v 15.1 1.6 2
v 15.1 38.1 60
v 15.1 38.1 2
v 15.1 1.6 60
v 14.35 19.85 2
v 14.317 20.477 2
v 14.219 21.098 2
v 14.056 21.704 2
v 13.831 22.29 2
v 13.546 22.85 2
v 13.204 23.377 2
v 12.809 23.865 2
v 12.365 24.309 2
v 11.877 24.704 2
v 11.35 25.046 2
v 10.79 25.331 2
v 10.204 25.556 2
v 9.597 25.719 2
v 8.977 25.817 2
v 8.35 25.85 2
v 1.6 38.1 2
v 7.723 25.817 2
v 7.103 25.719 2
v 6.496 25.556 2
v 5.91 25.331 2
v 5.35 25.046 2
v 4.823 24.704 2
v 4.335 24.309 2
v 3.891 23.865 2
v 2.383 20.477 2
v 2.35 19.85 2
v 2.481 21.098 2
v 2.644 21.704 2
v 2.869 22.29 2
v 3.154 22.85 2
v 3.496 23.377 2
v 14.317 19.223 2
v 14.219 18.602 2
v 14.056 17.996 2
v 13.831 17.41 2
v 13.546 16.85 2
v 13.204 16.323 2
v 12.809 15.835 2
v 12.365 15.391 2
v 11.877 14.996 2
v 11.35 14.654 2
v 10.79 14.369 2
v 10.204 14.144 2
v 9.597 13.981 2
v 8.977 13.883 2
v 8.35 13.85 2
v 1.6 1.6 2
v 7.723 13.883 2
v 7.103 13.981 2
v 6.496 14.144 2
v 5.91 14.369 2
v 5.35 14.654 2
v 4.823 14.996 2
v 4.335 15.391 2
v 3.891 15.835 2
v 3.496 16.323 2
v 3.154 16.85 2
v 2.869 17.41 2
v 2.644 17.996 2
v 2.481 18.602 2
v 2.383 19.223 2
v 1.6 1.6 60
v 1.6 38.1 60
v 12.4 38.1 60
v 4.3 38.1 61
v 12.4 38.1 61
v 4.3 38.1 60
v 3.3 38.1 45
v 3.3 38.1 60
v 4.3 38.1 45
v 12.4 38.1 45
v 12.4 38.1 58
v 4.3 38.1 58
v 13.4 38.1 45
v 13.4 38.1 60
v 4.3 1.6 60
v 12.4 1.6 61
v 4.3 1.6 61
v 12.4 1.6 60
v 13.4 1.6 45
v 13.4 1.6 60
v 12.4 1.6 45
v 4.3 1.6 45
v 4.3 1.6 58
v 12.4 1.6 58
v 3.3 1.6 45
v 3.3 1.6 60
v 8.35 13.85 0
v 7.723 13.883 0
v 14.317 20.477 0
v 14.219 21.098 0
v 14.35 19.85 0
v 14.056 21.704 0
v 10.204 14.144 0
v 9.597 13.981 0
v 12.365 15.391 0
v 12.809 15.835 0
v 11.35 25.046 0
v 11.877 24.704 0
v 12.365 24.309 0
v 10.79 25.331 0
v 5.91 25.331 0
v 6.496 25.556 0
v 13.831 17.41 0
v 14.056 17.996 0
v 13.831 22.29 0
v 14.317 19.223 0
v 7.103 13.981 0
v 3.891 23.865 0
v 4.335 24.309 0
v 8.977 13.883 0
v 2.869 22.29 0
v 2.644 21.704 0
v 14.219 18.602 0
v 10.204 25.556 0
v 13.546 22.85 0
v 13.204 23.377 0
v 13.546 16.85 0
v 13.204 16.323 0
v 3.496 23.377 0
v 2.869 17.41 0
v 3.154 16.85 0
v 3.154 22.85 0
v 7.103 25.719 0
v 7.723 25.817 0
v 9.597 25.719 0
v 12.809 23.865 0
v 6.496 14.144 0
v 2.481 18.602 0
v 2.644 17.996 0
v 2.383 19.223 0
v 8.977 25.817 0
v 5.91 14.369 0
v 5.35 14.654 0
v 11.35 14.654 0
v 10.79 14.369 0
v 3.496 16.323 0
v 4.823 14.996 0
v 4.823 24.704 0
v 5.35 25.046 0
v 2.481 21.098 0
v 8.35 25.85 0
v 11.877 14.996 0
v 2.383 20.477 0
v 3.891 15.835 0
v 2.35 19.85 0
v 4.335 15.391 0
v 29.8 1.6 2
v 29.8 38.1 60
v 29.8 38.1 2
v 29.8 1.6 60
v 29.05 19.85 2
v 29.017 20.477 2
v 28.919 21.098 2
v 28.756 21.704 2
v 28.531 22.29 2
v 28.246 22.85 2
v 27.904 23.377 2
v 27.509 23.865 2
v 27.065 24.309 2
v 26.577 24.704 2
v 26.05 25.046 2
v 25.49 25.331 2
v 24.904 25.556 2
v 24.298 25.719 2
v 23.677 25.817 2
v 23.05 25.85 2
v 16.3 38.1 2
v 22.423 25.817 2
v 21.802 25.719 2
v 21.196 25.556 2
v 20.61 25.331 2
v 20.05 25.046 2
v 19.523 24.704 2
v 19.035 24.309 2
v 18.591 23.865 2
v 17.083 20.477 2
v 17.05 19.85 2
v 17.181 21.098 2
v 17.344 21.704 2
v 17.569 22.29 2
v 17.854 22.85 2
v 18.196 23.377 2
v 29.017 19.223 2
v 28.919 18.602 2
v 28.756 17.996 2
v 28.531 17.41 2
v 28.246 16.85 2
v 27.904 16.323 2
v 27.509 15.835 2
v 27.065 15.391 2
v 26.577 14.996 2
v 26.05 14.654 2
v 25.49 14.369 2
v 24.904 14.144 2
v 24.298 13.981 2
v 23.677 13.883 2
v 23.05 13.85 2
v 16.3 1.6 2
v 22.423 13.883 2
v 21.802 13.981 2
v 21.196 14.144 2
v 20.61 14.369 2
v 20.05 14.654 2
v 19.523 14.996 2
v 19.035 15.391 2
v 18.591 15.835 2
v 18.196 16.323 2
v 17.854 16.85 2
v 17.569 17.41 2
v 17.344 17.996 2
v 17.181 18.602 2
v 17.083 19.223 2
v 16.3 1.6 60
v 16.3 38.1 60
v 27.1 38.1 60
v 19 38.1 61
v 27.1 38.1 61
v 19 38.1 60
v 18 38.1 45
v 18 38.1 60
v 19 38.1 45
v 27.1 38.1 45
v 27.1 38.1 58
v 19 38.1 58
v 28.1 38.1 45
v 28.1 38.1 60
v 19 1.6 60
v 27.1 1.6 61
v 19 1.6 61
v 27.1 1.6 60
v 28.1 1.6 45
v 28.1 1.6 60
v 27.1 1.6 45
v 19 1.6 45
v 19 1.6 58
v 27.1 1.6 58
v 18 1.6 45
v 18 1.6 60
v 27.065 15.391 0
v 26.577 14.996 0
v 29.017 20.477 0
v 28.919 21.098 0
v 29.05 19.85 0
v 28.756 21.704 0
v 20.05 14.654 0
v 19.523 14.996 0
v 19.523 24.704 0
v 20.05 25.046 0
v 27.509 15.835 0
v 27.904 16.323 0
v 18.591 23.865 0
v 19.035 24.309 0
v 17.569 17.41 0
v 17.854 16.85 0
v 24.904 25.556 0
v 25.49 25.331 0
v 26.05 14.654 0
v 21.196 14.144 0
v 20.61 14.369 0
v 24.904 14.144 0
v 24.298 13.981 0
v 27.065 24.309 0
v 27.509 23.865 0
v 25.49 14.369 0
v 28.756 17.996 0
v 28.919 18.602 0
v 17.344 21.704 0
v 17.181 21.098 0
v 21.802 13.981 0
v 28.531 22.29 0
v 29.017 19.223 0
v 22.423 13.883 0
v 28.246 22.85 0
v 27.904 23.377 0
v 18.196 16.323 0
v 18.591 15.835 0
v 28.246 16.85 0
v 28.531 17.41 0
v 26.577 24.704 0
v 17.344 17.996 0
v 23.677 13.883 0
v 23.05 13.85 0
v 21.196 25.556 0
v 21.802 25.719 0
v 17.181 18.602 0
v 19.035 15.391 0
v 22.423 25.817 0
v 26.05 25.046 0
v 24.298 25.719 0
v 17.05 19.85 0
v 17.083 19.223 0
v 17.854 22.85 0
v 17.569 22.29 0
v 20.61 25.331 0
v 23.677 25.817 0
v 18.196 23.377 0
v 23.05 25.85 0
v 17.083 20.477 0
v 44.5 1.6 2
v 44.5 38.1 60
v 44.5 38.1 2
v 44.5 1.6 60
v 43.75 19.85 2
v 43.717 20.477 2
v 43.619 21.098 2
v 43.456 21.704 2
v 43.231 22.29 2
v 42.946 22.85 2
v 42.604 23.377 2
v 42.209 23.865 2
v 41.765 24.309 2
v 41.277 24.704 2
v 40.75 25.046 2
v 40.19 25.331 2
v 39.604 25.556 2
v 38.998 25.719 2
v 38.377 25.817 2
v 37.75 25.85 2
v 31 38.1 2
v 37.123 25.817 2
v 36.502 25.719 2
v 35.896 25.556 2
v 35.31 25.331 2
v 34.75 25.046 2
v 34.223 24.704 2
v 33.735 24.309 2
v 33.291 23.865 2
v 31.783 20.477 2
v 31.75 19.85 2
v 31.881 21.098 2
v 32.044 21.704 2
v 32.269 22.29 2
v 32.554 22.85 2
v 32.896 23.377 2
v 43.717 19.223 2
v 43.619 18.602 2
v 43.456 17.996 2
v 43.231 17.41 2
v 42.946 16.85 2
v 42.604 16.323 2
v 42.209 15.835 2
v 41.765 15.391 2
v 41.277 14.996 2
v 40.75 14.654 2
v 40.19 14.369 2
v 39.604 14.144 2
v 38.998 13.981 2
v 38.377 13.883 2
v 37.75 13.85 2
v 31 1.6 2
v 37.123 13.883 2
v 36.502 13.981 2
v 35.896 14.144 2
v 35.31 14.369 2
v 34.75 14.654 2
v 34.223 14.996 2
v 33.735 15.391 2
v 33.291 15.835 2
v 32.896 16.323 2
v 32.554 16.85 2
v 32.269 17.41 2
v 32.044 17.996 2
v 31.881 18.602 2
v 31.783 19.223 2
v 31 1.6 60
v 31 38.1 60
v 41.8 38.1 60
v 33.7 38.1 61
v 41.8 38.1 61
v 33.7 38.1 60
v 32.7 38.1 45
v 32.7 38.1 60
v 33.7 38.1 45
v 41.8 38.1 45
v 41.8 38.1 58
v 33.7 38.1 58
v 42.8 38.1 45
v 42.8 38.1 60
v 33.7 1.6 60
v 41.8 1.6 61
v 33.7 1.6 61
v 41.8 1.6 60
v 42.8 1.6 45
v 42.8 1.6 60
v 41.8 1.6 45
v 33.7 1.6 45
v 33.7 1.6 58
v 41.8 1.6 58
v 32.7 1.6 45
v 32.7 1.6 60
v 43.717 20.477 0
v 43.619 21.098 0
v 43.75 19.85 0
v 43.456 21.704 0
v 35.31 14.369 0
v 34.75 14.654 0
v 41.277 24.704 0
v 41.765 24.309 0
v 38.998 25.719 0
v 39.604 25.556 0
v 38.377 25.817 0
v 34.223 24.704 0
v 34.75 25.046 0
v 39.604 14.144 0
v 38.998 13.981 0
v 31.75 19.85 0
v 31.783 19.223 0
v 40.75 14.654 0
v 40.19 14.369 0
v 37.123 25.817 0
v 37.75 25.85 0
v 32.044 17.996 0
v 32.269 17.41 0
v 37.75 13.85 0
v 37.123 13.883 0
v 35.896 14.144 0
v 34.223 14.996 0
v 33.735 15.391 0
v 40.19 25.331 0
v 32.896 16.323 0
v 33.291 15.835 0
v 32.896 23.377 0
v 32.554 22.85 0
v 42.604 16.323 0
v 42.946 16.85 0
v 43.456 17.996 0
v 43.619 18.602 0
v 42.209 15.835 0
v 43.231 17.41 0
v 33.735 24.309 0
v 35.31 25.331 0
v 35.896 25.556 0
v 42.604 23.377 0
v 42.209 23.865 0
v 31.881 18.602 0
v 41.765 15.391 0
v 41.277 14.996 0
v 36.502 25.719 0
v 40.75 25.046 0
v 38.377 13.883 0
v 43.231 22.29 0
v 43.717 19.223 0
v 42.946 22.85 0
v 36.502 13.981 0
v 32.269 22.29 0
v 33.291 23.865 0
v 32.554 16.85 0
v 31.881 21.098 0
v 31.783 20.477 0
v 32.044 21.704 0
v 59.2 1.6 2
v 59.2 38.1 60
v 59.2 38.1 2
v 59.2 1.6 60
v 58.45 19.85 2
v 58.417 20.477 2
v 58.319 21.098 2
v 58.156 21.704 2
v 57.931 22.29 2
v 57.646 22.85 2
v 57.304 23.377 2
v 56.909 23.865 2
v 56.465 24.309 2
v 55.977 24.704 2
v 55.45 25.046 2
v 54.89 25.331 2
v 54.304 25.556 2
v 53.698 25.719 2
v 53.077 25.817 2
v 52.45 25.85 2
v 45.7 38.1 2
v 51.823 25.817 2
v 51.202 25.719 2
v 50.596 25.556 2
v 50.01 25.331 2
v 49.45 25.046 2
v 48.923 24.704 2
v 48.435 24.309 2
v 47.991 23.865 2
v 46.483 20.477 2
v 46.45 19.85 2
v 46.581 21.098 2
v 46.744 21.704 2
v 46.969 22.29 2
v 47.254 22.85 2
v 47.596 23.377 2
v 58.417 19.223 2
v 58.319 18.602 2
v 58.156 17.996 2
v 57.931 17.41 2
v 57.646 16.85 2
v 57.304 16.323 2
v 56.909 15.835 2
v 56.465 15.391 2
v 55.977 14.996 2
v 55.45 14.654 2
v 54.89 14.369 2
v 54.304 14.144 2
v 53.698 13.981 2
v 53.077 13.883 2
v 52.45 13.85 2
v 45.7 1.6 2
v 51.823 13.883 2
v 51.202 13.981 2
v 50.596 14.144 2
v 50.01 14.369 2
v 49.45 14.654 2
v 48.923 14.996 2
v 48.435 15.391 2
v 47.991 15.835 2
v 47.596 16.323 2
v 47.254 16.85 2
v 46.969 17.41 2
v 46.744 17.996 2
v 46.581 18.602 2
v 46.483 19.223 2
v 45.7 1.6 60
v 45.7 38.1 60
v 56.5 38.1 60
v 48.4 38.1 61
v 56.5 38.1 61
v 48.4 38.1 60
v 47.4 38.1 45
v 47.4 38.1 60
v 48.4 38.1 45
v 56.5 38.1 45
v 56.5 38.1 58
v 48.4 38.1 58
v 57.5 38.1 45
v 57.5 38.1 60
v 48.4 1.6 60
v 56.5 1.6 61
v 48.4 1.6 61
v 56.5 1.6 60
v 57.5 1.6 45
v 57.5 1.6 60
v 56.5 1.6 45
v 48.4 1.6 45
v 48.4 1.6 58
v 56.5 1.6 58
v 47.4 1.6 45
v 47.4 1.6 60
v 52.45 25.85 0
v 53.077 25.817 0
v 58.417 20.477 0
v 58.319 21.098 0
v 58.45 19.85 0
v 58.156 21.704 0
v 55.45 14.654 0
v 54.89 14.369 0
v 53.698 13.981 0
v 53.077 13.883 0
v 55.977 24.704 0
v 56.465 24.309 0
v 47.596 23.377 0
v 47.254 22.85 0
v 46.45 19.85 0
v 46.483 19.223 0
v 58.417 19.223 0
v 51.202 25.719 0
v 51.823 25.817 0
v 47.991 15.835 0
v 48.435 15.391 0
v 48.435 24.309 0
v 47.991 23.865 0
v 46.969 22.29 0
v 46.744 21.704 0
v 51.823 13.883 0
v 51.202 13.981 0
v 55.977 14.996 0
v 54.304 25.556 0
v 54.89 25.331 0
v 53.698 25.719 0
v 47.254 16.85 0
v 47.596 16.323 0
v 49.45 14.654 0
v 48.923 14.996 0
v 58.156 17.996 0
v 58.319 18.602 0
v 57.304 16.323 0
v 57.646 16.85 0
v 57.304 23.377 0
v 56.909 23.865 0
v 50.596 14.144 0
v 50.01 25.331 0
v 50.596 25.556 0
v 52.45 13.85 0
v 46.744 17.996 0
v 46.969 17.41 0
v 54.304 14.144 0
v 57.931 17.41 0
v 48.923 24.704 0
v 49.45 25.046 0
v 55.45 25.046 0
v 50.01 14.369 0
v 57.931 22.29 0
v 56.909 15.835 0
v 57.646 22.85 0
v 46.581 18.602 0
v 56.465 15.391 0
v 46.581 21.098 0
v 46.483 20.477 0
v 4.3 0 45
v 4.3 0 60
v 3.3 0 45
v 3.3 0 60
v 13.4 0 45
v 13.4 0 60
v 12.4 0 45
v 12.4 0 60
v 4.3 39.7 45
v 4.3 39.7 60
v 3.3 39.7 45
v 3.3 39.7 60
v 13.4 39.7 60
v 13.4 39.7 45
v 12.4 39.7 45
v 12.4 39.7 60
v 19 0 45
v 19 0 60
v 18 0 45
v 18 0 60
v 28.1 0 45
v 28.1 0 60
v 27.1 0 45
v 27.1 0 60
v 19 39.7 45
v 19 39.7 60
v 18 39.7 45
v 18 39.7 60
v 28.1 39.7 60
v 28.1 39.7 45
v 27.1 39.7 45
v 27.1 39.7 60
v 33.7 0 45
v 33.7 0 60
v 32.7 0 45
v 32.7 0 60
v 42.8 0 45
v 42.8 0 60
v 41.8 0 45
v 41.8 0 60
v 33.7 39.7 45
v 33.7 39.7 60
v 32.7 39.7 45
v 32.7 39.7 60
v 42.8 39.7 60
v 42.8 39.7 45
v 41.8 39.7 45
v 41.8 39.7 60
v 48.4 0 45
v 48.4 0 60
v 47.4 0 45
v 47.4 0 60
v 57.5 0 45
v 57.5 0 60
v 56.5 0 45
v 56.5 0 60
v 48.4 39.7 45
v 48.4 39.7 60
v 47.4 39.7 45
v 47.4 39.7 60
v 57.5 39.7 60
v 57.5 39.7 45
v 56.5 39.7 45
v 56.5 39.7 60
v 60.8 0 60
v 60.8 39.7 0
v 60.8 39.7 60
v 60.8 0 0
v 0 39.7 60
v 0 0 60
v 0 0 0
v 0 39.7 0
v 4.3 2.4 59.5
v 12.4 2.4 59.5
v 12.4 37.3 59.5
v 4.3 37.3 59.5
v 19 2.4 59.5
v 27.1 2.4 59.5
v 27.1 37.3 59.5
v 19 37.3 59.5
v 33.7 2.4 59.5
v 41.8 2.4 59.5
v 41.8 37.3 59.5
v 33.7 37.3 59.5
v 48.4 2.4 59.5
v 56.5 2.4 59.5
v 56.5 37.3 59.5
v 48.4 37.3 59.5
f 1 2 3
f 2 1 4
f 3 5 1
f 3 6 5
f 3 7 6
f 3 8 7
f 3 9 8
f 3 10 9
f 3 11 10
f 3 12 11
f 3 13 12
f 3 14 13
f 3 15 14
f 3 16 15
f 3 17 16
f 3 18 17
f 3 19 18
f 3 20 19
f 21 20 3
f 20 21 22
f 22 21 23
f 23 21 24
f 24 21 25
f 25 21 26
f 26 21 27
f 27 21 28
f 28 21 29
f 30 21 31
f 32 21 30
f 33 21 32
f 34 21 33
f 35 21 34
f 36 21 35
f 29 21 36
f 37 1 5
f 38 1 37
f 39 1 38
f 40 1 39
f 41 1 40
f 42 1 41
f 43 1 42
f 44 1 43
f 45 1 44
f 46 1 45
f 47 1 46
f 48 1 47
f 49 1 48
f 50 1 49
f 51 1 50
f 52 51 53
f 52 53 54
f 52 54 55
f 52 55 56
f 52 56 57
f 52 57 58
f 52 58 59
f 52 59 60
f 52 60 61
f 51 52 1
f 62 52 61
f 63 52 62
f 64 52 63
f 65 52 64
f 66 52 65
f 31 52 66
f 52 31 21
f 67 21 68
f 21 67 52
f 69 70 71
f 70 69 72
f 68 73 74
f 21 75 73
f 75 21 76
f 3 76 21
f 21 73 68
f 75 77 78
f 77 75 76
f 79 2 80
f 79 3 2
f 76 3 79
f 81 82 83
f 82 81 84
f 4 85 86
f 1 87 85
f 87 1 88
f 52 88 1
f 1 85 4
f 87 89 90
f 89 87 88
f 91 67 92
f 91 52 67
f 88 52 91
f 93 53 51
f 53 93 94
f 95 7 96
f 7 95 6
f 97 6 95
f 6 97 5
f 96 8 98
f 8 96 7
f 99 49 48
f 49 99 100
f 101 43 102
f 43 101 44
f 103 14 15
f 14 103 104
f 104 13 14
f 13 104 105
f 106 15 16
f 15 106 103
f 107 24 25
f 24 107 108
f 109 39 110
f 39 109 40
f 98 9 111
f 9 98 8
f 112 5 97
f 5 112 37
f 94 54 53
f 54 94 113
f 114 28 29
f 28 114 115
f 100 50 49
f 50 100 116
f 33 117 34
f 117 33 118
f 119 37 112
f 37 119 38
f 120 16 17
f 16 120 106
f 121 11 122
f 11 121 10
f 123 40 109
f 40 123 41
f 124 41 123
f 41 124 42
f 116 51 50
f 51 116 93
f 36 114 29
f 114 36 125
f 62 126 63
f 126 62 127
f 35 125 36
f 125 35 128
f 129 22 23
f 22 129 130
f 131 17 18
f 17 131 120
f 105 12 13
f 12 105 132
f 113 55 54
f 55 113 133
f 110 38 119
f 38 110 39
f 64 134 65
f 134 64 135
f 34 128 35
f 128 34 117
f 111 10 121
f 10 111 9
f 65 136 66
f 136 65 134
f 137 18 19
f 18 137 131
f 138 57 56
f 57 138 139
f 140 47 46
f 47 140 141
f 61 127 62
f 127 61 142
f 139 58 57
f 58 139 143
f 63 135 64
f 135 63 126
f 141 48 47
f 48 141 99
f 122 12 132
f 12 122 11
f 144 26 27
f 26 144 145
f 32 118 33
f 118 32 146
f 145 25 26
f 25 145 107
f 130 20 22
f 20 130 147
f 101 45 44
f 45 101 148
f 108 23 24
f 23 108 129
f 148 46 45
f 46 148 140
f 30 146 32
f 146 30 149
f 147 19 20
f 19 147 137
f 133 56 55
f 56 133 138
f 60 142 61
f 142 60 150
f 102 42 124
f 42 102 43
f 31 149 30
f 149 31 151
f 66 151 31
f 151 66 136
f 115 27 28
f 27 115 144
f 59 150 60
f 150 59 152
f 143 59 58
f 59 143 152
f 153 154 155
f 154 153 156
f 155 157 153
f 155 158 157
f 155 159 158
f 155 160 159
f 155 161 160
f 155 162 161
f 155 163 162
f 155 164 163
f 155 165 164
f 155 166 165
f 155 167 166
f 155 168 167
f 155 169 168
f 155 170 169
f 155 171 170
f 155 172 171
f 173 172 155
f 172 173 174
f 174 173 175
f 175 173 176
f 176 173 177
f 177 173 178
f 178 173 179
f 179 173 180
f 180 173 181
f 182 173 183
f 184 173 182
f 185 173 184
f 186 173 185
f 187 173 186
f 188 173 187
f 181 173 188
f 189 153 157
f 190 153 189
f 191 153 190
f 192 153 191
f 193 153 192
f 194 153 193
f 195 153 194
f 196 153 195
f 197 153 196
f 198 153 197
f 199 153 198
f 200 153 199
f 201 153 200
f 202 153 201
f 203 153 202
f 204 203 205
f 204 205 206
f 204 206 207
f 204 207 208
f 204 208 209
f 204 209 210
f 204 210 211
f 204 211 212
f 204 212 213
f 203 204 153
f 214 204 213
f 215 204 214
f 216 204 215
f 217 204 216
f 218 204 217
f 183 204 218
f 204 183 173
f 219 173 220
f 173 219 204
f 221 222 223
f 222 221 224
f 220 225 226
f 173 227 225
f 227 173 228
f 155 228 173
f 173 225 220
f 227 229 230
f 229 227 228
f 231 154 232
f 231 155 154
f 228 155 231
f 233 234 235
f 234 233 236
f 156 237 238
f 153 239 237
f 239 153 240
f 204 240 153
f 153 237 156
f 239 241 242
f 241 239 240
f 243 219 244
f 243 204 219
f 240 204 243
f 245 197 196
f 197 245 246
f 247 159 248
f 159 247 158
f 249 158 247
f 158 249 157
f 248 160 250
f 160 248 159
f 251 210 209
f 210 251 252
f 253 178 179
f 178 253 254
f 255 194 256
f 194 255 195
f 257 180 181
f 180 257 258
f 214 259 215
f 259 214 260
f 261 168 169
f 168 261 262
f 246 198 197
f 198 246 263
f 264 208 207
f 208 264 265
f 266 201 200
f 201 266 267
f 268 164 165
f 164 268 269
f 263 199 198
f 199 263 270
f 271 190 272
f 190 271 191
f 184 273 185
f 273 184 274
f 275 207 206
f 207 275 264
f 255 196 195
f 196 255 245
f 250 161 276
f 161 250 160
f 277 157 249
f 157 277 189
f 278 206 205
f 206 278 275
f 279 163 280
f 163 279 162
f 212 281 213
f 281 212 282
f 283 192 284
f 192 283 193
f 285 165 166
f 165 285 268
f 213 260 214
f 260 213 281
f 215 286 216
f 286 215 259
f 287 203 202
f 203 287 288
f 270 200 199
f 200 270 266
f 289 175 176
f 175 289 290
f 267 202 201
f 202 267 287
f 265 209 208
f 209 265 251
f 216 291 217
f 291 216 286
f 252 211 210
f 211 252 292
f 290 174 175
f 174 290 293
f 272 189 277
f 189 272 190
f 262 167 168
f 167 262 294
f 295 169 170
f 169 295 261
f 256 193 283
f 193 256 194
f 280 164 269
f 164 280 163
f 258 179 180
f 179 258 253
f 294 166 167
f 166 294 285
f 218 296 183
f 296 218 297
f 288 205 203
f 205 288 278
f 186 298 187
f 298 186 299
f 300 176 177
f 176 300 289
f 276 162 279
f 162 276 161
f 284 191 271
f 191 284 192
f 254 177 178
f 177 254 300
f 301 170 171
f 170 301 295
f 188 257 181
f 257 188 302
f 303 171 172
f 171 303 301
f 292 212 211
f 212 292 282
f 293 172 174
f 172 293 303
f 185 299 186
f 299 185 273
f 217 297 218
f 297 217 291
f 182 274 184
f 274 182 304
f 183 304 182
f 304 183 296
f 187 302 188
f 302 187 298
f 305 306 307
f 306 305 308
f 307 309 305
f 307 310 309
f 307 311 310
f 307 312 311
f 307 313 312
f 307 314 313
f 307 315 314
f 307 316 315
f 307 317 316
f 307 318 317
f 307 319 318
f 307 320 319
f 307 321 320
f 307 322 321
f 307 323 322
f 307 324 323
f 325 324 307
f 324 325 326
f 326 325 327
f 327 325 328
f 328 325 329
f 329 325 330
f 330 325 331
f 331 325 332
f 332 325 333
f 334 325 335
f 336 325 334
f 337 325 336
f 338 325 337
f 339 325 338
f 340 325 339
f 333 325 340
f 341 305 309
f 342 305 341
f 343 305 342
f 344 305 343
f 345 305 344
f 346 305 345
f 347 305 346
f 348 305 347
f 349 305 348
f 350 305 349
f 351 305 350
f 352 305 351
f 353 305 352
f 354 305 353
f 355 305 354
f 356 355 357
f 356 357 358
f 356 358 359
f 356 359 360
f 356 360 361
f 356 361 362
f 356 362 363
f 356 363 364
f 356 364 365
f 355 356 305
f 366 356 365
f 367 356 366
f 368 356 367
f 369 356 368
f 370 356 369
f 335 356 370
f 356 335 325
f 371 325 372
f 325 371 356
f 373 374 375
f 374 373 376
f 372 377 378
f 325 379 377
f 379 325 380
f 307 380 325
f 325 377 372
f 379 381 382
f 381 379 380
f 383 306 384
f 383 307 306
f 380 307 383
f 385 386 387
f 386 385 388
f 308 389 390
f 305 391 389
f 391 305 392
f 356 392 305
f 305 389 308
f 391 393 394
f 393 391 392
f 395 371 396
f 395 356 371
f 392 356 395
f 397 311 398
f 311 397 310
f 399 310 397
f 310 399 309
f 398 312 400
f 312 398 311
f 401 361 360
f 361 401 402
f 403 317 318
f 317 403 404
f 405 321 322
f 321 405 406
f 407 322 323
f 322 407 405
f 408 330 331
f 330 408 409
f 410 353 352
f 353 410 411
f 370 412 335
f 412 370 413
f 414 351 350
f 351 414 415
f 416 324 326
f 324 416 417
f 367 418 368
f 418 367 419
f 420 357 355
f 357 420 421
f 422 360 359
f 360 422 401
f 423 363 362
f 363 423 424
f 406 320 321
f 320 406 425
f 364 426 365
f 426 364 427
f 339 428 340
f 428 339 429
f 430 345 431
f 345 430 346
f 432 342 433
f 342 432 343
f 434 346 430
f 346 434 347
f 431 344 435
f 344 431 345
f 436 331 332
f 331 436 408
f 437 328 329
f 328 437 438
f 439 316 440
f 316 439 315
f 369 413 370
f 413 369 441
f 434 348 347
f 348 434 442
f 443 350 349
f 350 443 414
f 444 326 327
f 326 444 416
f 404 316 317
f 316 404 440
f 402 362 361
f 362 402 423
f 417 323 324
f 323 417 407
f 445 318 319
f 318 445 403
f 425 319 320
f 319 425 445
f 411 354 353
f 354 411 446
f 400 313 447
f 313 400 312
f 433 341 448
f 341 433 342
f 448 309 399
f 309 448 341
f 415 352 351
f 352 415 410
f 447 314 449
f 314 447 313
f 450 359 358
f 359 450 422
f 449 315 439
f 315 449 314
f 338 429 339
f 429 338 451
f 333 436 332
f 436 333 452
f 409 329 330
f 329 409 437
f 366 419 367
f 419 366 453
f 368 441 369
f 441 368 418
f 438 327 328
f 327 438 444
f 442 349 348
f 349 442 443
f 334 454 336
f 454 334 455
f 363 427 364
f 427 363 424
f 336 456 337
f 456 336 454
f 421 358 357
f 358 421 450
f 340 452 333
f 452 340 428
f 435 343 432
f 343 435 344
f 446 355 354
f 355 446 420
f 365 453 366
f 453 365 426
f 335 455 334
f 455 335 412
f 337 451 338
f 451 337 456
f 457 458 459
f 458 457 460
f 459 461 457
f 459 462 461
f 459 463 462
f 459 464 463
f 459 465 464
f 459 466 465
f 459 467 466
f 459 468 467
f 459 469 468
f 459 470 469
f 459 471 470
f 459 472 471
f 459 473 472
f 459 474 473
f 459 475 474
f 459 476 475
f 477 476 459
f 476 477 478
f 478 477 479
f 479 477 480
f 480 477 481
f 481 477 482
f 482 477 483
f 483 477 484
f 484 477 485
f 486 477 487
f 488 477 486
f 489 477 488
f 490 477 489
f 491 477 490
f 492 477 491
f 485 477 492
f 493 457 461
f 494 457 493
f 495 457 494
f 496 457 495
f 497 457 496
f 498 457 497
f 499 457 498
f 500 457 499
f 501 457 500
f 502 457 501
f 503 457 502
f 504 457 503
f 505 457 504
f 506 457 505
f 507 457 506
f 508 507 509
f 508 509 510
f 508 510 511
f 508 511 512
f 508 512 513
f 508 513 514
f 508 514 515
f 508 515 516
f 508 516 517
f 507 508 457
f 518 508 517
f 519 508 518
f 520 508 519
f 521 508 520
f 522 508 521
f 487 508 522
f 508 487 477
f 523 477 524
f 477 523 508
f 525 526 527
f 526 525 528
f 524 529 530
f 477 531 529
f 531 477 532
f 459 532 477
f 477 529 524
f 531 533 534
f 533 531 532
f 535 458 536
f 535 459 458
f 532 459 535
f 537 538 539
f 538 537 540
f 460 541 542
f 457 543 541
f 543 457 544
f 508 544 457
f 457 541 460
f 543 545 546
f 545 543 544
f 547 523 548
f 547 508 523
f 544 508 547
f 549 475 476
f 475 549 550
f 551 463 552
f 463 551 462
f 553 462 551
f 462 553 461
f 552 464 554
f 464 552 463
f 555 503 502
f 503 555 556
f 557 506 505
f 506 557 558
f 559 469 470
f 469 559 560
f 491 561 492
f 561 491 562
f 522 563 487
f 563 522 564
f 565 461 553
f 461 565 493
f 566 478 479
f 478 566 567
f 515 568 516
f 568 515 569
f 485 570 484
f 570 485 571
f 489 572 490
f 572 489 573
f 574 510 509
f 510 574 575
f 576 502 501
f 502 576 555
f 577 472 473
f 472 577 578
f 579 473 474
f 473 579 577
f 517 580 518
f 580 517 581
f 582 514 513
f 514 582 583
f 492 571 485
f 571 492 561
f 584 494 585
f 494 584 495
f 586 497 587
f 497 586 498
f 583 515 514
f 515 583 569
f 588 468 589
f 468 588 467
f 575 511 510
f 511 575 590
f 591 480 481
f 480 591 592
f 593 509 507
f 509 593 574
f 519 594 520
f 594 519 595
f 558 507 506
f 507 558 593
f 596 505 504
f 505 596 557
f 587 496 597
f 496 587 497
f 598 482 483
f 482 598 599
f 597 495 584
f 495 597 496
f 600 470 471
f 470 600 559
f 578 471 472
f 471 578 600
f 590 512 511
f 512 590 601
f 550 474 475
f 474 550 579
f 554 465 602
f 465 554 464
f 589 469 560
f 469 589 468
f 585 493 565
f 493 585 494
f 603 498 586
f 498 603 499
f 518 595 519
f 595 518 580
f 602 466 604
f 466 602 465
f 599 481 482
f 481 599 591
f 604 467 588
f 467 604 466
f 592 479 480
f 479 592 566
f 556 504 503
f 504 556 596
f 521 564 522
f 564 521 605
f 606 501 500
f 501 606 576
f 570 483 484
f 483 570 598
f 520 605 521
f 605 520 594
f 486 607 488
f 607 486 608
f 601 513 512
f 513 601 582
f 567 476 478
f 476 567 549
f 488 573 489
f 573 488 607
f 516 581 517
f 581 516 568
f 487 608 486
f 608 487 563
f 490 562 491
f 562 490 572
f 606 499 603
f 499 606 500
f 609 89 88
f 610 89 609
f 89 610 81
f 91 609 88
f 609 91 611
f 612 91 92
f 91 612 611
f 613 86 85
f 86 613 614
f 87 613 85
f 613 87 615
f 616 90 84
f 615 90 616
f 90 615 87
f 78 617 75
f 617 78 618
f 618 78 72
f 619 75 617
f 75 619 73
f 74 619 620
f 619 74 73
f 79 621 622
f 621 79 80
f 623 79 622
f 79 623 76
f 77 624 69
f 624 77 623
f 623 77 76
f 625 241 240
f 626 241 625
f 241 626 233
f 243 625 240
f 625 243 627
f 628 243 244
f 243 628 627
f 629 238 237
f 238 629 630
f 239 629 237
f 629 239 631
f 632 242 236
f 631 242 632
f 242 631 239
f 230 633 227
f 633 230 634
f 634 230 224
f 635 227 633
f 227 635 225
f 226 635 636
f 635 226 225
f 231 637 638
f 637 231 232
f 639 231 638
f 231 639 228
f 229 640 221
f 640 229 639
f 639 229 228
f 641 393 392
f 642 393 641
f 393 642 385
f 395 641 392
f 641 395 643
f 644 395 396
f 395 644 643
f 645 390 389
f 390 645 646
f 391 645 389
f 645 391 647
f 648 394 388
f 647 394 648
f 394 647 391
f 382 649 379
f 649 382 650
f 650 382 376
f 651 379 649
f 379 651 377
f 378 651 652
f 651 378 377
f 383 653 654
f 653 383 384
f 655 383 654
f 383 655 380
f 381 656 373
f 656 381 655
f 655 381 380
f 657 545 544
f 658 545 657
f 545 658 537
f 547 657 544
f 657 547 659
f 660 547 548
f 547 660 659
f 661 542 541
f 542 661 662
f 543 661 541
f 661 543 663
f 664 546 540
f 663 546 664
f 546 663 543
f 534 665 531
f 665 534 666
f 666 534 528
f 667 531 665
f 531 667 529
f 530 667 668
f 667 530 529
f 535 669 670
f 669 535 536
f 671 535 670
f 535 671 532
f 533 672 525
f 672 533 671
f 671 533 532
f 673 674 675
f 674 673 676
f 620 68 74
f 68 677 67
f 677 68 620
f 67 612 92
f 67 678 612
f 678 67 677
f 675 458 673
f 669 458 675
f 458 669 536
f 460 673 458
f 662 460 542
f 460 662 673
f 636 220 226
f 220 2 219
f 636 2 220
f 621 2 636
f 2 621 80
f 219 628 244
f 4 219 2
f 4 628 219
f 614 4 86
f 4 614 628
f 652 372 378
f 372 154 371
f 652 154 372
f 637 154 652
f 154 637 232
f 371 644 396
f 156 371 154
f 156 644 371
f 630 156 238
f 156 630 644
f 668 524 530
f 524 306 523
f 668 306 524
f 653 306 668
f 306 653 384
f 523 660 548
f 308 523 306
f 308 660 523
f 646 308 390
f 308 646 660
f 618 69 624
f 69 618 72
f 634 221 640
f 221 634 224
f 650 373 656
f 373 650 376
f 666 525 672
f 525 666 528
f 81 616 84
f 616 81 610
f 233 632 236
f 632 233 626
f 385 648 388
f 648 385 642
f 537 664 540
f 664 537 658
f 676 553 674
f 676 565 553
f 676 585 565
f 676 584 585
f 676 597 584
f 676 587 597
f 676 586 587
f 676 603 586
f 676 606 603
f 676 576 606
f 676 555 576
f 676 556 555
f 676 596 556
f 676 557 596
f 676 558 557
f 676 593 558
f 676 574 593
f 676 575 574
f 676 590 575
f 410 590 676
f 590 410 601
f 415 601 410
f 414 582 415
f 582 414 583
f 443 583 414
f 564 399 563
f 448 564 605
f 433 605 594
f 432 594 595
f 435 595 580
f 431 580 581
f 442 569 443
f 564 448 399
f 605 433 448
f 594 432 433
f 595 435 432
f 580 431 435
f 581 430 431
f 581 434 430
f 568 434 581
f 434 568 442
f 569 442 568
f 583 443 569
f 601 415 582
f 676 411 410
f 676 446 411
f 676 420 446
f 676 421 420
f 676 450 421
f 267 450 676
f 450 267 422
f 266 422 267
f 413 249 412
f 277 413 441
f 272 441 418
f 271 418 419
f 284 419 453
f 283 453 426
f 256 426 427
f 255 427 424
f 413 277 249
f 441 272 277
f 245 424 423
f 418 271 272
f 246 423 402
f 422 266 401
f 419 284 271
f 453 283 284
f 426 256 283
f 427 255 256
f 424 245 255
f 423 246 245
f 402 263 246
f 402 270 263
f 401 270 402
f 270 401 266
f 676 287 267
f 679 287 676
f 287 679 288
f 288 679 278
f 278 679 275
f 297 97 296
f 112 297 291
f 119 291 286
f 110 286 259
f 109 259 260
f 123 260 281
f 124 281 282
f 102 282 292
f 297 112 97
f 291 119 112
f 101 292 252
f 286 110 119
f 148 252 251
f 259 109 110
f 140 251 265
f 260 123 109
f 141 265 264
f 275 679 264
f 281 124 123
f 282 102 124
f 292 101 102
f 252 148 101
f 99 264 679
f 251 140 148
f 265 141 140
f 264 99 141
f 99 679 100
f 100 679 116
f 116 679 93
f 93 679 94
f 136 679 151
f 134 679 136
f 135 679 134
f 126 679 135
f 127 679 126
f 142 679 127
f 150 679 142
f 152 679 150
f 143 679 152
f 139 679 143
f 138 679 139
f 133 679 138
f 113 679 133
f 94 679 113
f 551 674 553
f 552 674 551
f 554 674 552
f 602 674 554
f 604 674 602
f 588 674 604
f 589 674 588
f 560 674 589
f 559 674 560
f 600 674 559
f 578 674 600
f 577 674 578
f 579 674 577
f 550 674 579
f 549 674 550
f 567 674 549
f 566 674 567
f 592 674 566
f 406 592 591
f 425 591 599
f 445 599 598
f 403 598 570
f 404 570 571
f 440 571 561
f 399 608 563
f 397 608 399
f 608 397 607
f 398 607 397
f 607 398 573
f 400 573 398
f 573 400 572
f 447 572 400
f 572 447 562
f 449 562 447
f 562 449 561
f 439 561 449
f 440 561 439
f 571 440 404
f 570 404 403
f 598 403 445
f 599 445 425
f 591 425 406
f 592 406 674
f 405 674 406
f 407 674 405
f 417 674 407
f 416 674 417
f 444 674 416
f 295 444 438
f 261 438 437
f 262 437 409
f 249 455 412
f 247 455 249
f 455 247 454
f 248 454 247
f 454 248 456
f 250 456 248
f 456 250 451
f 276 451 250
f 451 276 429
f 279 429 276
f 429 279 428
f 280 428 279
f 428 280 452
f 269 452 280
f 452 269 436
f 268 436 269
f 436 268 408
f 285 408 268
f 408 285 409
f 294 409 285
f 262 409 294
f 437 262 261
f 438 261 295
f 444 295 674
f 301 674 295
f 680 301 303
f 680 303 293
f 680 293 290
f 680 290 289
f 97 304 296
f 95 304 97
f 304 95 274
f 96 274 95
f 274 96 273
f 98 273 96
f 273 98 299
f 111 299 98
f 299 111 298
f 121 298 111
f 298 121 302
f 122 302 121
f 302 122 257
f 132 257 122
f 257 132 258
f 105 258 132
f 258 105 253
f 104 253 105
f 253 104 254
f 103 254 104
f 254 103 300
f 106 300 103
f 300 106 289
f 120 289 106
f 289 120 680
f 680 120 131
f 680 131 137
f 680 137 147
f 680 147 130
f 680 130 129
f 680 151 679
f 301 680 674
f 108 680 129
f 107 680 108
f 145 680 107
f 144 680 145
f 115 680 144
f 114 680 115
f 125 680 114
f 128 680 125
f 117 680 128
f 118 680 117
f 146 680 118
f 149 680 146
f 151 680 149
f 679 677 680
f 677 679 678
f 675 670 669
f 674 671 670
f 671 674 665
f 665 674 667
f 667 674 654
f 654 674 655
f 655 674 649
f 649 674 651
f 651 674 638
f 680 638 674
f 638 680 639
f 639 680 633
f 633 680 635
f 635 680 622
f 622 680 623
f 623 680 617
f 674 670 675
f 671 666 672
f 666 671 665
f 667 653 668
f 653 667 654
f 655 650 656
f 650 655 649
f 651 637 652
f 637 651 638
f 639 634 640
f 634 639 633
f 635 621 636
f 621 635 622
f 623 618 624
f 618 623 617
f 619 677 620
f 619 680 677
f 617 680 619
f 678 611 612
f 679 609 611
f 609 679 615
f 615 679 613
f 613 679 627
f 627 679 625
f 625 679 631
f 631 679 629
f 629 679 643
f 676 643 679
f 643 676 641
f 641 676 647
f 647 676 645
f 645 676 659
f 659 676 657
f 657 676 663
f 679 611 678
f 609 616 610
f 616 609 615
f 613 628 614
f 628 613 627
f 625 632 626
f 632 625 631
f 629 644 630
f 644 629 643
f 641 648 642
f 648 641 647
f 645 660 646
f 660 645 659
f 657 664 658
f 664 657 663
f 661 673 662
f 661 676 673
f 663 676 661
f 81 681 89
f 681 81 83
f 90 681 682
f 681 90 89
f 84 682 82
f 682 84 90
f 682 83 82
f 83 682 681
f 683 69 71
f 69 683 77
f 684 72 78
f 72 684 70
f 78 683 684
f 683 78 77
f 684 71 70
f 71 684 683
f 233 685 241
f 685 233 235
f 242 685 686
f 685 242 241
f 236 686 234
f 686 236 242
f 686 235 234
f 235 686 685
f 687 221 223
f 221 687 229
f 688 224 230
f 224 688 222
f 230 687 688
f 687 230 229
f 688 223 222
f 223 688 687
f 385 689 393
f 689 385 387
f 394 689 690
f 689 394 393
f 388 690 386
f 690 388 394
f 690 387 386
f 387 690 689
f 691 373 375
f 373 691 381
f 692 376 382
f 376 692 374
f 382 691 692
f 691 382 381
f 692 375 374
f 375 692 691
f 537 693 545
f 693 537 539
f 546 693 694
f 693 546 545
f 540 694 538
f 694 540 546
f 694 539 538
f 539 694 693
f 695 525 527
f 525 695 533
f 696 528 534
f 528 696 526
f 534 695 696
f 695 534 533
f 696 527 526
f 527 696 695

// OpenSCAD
// Olympus BLS-5 Battery Case
// Holds 4 batteries in a row
// Battery dimensions: 56mm (H) x 36mm (W) x 13mm (D)
// Standing on 36x13 face

/* [Parameters] */
bat_w = 36.0;   // Y dimension (Width)
bat_d = 13.0;   // X dimension (Thickness)
bat_h = 56.0;   // Z dimension (Height)

num_slots = 4;
wall = 1.6;        // Outer wall thickness
divider = 1.2;     // Inner divider thickness
floor_th = 2.0;    // Floor thickness
clearance = 0.5;   // Clearance around battery

// Feature Parameters
snap_zone = 2.0;       // Extra height for snap mechanism
snap_protrusion = 0.8; // Depth of snap nub
slit_depth = 15.0;     // Depth of flexure slits
hole_dia = 12.0;       // Finger hole diameter
tab_ratio = 0.6;       // Tab width ratio relative to slot depth

/* [Hidden] */
slot_w = bat_w + clearance;
slot_d = bat_d + clearance;
slot_h = bat_h;

// Total External Dimensions
// Layout: Wall | Slot | Divider | Slot ... | Wall
total_x = 2 * wall + num_slots * slot_d + (num_slots - 1) * divider;
total_y = slot_w + 2 * wall;
total_z = floor_th + slot_h + snap_zone;

$fn = 60;

module case() {
    union() {
        difference() {
            // Main solid block
            cube([total_x, total_y, total_z]);

            // Subtract Slots
            for (i = [0 : num_slots - 1]) {
                // X Position of this slot
                dx = wall + i * (slot_d + divider);
                
                translate([dx, wall, floor_th]) {
                    // Battery Slot cavity
                    // Extend above top
                    cube([slot_d, slot_w, total_z]);
                }
                
                // Finger hole (centered in slot)
                translate([dx + slot_d/2, total_y/2, -1]) {
                    cylinder(h = floor_th + 2, d = hole_dia);
                }
            }

            // Subtract Slits for Flex Tabs
            for (i = [0 : num_slots - 1]) {
                slit_w = 1.0;
                tab_w = slot_d * tab_ratio; // Tab width ~8mm
                
                cx = wall + i * (slot_d + divider) + slot_d/2;
                
                z_bot = total_z - slit_depth;
                
                // Front wall slits (Y near 0)
                translate([cx - tab_w/2 - slit_w, -1, z_bot])
                    cube([slit_w, wall + 2, slit_depth + 1]);
                translate([cx + tab_w/2, -1, z_bot])
                    cube([slit_w, wall + 2, slit_depth + 1]);

                // Back wall slits (Y near max)
                translate([cx - tab_w/2 - slit_w, total_y - wall - 1, z_bot])
                    cube([slit_w, wall + 2, slit_depth + 1]);
                translate([cx + tab_w/2, total_y - wall - 1, z_bot])
                    cube([slit_w, wall + 2, slit_depth + 1]);
            }
        }
        
        // Add Snap Nubs
        for (i = [0 : num_slots - 1]) {
            cx = wall + i * (slot_d + divider) + slot_d/2;
            tab_w = slot_d * tab_ratio;

            // Front Snap
            translate([cx, wall, floor_th + slot_h])
                snap_nub(tab_w, snap_protrusion);

            // Back Snap
            translate([cx, total_y - wall, floor_th + slot_h])
                rotate([0, 0, 180])
                snap_nub(tab_w, snap_protrusion);
        }
    }
}

module snap_nub(width, prot) {
    // Creates a nub centered at current [x,y,z]
    // Extrusion along X (width)
    // Profile in rotated space:
    // Poly X -> Global -Z
    // Poly Y -> Global Y
    
    translate([-width/2, 0, 0])
    rotate([0, 90, 0])
    linear_extrude(width)
    polygon(points=[
        [0, 0],           // Start at wall surface
        [-1.5, prot],     // Peak (Global Z+1.5, Y+prot)
        [-3.0, 0]         // End (Global Z+3.0, Y+0)
    ]);
}

case();
